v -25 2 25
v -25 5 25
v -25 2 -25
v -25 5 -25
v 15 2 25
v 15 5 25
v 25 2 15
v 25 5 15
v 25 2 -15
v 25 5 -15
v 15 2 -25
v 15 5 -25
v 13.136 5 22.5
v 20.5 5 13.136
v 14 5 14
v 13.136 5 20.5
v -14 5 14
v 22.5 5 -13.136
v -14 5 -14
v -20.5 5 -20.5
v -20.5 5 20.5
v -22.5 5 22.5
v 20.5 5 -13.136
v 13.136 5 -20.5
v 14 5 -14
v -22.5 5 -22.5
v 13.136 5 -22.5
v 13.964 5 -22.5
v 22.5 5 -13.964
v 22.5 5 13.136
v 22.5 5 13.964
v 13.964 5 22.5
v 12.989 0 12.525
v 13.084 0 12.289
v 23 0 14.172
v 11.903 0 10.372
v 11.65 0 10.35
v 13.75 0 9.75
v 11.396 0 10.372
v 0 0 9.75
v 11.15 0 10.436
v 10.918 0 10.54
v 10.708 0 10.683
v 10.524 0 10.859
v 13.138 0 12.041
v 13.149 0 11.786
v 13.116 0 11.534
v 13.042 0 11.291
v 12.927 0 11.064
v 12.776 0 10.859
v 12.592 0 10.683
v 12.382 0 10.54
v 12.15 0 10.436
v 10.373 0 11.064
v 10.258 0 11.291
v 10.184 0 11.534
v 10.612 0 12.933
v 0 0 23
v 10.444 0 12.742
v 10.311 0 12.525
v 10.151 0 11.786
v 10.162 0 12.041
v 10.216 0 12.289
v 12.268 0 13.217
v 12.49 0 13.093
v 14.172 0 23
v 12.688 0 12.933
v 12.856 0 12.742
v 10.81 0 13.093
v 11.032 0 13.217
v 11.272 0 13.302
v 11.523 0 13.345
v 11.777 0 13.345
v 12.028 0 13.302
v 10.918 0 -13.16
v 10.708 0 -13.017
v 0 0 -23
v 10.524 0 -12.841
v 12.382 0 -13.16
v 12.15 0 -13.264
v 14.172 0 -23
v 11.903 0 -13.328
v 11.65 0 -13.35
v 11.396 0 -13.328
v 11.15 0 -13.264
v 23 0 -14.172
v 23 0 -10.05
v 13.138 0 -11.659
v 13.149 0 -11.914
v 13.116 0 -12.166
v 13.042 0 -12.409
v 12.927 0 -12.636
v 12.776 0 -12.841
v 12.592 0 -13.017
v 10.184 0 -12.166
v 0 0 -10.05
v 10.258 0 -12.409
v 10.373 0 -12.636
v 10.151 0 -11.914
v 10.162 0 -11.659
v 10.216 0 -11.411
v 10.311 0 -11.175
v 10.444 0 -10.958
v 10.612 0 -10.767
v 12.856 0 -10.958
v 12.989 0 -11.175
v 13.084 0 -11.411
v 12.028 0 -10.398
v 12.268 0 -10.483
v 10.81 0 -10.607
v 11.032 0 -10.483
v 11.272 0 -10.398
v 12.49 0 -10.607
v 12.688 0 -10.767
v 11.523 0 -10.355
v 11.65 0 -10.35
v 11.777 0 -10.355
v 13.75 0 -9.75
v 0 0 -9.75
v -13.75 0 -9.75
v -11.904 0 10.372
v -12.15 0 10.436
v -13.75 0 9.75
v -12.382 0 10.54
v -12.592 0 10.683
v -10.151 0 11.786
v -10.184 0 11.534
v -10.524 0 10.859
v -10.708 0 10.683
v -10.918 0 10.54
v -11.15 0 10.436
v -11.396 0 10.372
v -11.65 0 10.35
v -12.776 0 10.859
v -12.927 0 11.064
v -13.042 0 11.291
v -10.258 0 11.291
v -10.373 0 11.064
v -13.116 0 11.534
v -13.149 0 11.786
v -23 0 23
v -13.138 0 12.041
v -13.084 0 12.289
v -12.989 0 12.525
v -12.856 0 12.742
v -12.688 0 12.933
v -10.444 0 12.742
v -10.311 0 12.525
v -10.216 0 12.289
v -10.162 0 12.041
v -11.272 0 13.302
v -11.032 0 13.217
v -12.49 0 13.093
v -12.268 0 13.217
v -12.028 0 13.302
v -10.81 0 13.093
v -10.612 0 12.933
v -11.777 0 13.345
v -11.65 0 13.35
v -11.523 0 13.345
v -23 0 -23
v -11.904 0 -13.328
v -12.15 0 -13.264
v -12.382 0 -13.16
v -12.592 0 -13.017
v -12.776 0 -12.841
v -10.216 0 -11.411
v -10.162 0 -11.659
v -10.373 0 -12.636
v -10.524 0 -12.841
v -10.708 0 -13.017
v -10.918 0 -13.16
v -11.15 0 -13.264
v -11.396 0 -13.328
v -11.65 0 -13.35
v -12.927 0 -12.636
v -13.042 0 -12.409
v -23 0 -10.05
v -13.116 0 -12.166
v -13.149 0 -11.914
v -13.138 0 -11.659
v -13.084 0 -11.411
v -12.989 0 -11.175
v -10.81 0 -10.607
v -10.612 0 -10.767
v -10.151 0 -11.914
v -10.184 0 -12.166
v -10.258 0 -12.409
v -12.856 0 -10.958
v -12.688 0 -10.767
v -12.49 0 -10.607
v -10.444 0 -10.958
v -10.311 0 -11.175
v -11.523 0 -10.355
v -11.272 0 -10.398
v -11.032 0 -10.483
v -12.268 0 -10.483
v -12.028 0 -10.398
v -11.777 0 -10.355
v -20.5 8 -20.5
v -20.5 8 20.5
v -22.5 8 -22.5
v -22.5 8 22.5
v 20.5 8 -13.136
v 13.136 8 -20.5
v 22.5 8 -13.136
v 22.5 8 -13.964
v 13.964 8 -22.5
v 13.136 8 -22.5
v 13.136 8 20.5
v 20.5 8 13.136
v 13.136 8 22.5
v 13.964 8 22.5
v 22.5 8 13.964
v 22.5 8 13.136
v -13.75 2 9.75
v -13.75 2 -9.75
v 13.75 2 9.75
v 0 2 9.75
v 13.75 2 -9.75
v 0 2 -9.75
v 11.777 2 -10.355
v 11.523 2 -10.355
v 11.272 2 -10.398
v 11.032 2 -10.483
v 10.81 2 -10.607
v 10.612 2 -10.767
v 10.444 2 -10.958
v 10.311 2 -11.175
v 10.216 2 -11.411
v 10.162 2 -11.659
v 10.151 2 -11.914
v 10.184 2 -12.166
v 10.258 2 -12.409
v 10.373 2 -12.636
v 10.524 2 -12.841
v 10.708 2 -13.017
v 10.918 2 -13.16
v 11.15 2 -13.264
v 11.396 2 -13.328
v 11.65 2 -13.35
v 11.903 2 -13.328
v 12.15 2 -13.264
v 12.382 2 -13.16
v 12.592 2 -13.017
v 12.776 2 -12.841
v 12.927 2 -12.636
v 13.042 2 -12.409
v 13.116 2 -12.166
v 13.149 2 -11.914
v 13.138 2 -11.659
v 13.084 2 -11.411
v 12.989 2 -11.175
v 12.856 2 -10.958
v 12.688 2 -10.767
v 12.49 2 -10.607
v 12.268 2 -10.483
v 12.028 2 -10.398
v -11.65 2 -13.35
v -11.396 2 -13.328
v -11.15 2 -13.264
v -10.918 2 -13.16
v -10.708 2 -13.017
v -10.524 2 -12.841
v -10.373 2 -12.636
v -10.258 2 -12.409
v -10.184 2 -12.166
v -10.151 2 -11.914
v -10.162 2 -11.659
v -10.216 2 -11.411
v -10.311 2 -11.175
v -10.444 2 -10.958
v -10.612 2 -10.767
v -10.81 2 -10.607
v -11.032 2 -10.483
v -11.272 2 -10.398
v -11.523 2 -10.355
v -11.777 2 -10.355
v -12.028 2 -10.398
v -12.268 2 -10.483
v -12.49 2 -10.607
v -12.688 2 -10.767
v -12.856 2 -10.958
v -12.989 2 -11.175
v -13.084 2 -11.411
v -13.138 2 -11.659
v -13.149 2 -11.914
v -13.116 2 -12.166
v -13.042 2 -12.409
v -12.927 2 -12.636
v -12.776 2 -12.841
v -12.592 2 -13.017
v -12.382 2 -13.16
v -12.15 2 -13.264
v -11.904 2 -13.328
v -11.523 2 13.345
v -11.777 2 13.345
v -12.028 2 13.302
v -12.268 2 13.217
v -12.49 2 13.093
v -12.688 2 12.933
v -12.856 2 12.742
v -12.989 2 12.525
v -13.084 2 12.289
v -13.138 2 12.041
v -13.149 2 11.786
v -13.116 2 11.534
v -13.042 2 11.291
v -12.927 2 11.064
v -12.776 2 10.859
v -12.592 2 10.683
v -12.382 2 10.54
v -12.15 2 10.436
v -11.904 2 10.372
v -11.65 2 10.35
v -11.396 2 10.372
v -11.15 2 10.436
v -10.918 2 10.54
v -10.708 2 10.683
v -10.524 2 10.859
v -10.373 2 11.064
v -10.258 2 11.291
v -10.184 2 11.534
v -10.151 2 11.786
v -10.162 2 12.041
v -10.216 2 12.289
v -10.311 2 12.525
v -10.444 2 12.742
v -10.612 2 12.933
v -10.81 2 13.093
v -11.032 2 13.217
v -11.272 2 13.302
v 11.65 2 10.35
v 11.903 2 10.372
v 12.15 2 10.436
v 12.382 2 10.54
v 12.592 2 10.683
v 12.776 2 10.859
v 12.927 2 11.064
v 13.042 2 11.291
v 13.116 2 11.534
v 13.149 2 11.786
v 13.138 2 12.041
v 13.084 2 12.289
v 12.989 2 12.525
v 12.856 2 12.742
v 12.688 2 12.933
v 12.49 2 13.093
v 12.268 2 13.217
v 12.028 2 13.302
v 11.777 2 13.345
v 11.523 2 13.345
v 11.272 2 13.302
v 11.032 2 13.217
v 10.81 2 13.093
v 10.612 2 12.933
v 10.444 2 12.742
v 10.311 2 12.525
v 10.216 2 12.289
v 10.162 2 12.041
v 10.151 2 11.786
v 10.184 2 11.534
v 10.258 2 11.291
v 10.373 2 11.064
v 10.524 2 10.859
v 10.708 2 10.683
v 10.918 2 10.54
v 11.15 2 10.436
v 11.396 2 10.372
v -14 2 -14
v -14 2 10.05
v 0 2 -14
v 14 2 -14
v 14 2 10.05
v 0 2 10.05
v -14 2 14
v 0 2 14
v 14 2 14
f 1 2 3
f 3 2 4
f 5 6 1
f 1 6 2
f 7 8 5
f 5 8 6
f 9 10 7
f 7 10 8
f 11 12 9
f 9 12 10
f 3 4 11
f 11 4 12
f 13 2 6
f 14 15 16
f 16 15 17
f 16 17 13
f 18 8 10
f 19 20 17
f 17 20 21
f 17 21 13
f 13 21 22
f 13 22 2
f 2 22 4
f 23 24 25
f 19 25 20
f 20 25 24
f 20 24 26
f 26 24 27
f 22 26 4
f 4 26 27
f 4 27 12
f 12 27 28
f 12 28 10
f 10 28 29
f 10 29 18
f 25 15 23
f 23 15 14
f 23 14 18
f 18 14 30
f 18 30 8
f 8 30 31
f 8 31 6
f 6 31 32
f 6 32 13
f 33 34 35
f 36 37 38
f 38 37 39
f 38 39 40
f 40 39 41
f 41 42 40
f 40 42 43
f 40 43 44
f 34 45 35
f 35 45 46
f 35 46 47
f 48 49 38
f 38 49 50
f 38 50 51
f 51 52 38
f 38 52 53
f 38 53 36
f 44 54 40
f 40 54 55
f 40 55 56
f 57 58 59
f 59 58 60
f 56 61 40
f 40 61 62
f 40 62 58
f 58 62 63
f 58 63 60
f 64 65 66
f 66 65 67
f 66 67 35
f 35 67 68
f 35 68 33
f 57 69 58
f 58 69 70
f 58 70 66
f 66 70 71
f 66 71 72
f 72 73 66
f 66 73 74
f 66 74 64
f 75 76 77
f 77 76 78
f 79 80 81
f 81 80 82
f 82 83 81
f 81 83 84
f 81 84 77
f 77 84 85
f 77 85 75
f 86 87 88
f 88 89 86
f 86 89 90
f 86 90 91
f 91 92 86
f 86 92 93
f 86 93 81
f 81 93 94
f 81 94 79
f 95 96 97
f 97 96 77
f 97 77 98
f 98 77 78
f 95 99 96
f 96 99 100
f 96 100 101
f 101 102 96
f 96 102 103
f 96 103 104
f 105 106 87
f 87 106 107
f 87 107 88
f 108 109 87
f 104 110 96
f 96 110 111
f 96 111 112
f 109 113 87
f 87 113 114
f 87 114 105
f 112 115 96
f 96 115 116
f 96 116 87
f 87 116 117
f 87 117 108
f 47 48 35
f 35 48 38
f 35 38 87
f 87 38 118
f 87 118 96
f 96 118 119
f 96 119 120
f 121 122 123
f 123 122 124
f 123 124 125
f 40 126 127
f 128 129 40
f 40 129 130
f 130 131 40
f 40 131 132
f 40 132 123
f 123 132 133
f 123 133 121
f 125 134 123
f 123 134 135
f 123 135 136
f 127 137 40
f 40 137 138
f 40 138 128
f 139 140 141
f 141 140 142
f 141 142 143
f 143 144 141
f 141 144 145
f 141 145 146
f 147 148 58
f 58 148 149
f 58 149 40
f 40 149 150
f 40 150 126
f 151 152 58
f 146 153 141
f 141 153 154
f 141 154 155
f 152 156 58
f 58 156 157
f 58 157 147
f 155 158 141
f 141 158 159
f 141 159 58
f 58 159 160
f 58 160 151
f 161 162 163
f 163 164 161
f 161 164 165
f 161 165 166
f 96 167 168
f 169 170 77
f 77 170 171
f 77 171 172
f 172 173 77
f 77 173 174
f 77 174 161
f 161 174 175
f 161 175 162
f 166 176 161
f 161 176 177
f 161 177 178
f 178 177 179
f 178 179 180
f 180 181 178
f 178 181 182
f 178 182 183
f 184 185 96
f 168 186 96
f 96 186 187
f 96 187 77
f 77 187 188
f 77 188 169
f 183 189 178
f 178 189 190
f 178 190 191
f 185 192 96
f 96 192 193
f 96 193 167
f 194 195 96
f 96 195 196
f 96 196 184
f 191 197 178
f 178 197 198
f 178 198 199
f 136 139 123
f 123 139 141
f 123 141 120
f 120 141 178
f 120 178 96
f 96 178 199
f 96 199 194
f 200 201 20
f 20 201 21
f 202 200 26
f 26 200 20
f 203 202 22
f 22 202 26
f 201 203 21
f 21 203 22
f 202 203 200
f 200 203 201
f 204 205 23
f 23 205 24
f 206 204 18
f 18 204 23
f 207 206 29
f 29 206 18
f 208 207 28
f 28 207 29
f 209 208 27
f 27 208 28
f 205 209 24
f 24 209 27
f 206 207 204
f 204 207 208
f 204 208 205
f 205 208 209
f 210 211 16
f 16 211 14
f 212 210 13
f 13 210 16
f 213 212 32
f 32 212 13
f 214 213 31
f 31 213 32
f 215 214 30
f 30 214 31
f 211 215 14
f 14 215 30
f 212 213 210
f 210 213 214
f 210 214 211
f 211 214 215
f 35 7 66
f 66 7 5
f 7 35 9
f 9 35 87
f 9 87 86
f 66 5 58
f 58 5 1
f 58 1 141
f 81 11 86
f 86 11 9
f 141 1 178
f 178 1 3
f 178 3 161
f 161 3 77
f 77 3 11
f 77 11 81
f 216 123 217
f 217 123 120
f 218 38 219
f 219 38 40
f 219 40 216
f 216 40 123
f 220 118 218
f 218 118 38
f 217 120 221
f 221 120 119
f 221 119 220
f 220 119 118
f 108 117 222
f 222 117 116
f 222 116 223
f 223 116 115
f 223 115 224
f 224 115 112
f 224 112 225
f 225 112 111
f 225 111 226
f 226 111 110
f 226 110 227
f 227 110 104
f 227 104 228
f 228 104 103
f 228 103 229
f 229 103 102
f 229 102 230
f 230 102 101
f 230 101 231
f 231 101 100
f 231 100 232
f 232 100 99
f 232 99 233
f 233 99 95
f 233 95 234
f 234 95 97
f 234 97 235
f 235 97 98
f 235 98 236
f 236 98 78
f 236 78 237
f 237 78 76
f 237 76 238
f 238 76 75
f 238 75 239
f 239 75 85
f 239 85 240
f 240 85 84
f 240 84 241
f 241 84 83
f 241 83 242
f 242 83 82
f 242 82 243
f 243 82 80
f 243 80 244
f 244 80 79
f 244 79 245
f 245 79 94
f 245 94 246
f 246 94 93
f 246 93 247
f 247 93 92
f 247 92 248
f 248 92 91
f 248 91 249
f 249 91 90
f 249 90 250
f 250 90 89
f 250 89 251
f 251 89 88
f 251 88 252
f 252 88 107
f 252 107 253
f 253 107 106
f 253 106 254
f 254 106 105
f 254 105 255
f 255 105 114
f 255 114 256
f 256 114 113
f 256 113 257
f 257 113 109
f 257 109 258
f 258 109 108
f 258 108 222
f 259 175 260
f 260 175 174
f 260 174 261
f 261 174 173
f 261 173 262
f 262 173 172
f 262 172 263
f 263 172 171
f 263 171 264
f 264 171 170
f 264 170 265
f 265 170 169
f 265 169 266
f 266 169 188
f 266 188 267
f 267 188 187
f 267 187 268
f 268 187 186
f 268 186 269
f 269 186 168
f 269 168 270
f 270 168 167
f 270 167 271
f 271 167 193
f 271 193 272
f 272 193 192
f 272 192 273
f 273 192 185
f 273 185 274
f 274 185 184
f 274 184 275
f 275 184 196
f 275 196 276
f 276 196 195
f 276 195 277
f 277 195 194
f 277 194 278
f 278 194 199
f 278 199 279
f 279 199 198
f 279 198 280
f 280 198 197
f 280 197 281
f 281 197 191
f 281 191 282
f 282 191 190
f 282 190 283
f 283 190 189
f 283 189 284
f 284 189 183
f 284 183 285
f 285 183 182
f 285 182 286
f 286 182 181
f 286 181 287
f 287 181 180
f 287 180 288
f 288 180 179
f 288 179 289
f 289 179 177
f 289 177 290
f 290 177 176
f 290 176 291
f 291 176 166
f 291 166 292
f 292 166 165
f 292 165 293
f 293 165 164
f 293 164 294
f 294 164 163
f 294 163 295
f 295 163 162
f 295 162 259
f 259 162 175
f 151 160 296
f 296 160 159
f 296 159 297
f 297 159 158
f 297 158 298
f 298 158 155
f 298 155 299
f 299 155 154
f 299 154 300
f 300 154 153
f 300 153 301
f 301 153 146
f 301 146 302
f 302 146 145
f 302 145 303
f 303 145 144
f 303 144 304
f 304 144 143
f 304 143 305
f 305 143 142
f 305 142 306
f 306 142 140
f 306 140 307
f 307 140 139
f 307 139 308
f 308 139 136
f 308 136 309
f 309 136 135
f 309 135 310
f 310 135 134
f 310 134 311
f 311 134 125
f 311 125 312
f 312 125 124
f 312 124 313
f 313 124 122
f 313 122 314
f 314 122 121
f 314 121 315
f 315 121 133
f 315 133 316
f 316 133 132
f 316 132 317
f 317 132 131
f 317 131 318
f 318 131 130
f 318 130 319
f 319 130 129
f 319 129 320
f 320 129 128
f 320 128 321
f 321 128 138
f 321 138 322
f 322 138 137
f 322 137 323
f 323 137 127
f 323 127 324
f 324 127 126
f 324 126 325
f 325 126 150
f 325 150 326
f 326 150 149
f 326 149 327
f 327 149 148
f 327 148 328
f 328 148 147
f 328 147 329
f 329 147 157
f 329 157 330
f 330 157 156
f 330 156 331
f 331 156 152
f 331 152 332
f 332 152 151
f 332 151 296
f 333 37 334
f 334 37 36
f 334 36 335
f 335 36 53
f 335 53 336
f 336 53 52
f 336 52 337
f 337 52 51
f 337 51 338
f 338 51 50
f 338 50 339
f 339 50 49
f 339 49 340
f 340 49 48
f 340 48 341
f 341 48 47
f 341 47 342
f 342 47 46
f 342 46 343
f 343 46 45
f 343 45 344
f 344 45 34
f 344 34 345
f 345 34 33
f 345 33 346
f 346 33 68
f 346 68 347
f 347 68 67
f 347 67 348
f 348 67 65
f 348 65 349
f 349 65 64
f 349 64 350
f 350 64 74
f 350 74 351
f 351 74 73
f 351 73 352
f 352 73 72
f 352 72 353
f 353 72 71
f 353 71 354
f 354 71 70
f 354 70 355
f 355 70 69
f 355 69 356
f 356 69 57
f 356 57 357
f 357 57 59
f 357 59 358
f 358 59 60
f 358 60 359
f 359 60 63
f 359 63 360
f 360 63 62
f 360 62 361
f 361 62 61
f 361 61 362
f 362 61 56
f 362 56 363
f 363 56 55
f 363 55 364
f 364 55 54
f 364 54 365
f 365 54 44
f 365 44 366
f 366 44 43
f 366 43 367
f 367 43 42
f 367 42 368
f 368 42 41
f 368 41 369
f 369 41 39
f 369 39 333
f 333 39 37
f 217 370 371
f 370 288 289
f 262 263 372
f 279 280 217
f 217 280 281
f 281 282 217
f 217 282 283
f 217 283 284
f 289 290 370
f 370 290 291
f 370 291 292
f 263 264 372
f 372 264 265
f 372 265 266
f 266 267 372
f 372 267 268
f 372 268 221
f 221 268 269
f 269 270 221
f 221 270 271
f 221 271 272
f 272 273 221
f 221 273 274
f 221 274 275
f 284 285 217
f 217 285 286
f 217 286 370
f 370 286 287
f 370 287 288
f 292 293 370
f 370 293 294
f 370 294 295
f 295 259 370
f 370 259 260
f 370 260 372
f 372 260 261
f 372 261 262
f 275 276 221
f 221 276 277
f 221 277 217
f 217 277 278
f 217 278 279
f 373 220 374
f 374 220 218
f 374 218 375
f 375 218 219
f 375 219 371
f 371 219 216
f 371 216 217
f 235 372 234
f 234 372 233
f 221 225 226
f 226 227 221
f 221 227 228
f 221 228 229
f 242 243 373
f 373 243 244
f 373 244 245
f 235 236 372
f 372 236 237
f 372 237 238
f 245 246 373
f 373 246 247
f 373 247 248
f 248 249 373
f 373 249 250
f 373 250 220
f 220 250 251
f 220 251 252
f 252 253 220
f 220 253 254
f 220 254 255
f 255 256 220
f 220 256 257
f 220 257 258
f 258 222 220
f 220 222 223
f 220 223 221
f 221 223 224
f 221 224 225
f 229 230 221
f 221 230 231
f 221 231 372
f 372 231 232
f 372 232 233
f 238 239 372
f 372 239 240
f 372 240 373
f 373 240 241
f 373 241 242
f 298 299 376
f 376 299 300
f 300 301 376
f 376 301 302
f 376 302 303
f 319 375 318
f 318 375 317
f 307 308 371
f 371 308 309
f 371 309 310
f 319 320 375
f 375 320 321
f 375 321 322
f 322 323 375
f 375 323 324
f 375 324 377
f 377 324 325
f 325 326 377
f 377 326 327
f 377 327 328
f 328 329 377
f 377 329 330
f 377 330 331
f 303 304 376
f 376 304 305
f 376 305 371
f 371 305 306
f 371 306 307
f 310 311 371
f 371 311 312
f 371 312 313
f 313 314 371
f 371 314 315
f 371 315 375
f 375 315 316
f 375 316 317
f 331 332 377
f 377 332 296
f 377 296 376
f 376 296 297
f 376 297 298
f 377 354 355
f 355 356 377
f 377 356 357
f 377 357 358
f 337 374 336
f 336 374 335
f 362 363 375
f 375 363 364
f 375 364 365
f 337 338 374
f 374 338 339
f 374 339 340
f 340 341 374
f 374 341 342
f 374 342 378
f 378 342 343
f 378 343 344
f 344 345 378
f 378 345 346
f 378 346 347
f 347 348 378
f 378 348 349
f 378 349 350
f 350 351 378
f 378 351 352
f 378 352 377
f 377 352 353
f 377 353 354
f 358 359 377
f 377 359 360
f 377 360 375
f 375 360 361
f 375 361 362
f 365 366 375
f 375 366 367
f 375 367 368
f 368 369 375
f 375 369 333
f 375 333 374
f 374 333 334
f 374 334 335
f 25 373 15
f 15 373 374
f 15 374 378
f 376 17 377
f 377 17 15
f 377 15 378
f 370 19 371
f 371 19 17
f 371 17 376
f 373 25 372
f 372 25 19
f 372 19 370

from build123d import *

# Parameters (mm, degrees)
BOSS_EXTRUDE1_DEPTH = 5
BOSS_EXTRUDE2_DEPTH = 3
CHAMFER1_SIZE       = 2
SKETCH4_R           = 1.5
SKETCH4_W           = 27.5
SKETCH4_H           = 19.5
CUT_EXTRUDE2_DEPTH  = 8
SKETCH5_W           = 28
SKETCH5_H           = 28
CUT_EXTRUDE3_DEPTH  = 3


with BuildPart() as part:
    # Sketch1 → Boss-Extrude1 (new body)
    with BuildSketch(Plane(origin=(0, 0, 0), x_dir=(1, 0, 0), z_dir=(0, 1, 0))):
        Polygon((15, 25), (25, 15), (25, -15), (15, -25), (-25, -25), (-25, 25), align=None)
    extrude(amount=BOSS_EXTRUDE1_DEPTH)

    # Sketch2 → Boss-Extrude2 (add)
    with BuildSketch(Plane(origin=(0, 5, 0), x_dir=(1, 0, 0), z_dir=(0, 1, 0))):
        Polygon((-20.5, 20.5), (-20.5, -20.5), (-22.5, -22.5), (-22.5, 22.5), align=None)
        Polygon((13.964466094, 22.5), (13.136038969, 22.5), (13.136038969, 20.5), (20.5, 13.136038969), (22.5, 13.136038969), (22.5, 13.964466094), align=None)
        Polygon((13.136038969, -20.5), (13.136038969, -22.5), (13.964466094, -22.5), (22.5, -13.964466094), (22.5, -13.136038969), (20.5, -13.136038969), align=None)
    extrude(amount=BOSS_EXTRUDE2_DEPTH)

    # Chamfer1
    chamfer1_edges = [part.edges().sort_by_distance(p)[0] for p in [
        (-5, 0, -25),
        (20, 0, -20),
        (25, 0, 0),
        (20, 0, 20),
        (-5, 0, 25),
        (-25, 0, 0),
    ]]
    chamfer(chamfer1_edges, length=CHAMFER1_SIZE)

    # Sketch4 → Cut-Extrude2 (cut)
    with BuildSketch(Plane(origin=(0, 0, 0), x_dir=(-1, 0, 0), z_dir=(0, -1, 0))):
        with Locations((-11.65, -11.85)):
            Circle(SKETCH4_R)
        with Locations((11.65, -11.85)):
            Circle(SKETCH4_R)
        with Locations((11.65, 11.85)):
            Circle(SKETCH4_R)
        with Locations((-11.65, 11.85)):
            Circle(SKETCH4_R)
        Rectangle(SKETCH4_W, SKETCH4_H)
    extrude(amount=-CUT_EXTRUDE2_DEPTH, mode=Mode.SUBTRACT)

    # Sketch5 → Cut-Extrude3 (cut)
    with BuildSketch(Plane(origin=(0, 5, 0), x_dir=(1, 0, 0), z_dir=(0, 1, 0))):
        Rectangle(SKETCH5_W, SKETCH5_H)
    extrude(amount=-CUT_EXTRUDE3_DEPTH, mode=Mode.SUBTRACT)


solid = part.part
